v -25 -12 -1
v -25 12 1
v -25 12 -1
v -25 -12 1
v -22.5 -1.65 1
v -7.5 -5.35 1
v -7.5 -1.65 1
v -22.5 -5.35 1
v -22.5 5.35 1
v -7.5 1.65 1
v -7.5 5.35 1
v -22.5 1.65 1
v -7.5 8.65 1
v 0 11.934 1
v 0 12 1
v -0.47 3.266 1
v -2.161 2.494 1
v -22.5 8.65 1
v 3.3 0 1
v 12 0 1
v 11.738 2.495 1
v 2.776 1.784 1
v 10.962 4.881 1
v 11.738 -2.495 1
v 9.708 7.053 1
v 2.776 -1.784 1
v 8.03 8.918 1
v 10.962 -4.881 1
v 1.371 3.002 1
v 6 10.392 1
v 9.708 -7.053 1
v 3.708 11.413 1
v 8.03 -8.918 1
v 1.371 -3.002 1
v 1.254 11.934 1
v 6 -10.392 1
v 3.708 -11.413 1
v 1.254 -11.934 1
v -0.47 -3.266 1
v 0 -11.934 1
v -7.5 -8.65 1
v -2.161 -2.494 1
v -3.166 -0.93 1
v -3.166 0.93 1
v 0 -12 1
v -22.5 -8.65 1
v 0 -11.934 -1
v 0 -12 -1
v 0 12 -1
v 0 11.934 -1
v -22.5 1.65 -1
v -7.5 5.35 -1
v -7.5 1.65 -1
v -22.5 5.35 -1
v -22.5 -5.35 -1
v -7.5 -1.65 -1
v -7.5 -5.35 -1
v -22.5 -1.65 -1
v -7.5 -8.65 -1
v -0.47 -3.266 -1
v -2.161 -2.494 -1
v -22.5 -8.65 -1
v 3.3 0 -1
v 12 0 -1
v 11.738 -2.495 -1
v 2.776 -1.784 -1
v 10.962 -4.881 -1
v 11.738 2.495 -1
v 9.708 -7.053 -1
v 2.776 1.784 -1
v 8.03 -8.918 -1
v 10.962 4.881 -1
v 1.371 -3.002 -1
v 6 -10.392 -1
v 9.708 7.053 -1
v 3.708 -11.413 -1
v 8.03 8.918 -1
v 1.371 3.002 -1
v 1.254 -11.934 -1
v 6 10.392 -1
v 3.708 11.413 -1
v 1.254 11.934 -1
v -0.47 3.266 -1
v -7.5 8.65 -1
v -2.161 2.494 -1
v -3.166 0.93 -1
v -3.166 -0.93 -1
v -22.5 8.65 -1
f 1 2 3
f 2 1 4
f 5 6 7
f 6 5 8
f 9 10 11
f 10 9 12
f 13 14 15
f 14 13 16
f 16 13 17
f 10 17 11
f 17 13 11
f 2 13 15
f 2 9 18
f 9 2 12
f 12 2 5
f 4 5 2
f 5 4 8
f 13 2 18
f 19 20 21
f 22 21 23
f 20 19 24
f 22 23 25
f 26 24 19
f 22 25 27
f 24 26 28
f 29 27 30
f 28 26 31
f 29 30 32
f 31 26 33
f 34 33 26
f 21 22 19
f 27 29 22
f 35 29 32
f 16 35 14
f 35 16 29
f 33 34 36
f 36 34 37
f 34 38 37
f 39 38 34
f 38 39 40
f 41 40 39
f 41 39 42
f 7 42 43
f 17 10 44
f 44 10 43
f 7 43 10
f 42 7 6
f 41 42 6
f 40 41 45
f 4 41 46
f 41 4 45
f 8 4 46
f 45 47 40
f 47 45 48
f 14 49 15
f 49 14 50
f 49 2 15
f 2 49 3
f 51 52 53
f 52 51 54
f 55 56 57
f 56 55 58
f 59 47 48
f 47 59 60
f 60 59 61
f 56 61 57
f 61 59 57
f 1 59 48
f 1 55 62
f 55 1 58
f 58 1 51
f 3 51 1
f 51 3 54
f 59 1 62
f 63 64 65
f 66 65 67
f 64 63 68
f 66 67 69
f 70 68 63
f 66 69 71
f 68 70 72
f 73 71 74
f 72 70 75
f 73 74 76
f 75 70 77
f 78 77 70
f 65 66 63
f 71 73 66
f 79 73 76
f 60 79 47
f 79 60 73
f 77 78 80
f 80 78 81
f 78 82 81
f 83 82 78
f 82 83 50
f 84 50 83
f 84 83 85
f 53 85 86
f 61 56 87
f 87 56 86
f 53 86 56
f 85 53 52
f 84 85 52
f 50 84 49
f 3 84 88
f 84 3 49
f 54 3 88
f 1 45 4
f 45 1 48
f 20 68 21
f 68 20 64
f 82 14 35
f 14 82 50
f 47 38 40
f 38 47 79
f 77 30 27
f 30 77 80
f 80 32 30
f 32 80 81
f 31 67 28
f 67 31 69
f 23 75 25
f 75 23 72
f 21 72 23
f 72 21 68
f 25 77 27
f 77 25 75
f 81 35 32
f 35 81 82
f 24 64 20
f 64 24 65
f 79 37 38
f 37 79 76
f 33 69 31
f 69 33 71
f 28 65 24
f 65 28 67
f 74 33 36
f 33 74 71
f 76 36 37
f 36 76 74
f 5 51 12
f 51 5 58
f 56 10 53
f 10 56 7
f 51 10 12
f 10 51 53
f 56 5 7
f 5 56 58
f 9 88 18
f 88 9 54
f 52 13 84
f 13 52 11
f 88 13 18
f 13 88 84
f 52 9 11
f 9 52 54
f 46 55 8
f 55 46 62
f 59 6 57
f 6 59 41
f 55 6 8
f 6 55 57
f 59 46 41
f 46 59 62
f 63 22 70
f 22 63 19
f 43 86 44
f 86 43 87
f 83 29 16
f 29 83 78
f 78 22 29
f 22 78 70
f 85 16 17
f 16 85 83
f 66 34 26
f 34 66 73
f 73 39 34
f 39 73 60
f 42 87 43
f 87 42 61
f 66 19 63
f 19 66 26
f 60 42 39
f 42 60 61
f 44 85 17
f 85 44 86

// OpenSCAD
raioMaior = 12;
raioMenor = 3.3; 
altura = 2; 

comprimento = 25; 

module base () {
 
 translate([-comprimento/2,0,0])
 cube([comprimento,2*raioMaior,altura],true);
 cylinder(altura,raioMaior,raioMaior,true);
}

module furosBase() {
 tam = comprimento*0.6;
 cylinder(altura+1,raioMenor,raioMenor,true); 
    
 translate([-tam,0,0]) {
  cube([tam,3.3,altura+1],true);
  translate([0,raioMaior-5,0])
   cube([tam,3.3,altura+1],true); 
  
  translate([0,-raioMaior+5,0])
   cube([tam,3.3,altura+1],true); 
  } 
}

difference(){
base(); 
furosBase();

}
//
 //base(); 
 //cylinder(altura+1,raioMenor,raioMenor,true); 
//}
